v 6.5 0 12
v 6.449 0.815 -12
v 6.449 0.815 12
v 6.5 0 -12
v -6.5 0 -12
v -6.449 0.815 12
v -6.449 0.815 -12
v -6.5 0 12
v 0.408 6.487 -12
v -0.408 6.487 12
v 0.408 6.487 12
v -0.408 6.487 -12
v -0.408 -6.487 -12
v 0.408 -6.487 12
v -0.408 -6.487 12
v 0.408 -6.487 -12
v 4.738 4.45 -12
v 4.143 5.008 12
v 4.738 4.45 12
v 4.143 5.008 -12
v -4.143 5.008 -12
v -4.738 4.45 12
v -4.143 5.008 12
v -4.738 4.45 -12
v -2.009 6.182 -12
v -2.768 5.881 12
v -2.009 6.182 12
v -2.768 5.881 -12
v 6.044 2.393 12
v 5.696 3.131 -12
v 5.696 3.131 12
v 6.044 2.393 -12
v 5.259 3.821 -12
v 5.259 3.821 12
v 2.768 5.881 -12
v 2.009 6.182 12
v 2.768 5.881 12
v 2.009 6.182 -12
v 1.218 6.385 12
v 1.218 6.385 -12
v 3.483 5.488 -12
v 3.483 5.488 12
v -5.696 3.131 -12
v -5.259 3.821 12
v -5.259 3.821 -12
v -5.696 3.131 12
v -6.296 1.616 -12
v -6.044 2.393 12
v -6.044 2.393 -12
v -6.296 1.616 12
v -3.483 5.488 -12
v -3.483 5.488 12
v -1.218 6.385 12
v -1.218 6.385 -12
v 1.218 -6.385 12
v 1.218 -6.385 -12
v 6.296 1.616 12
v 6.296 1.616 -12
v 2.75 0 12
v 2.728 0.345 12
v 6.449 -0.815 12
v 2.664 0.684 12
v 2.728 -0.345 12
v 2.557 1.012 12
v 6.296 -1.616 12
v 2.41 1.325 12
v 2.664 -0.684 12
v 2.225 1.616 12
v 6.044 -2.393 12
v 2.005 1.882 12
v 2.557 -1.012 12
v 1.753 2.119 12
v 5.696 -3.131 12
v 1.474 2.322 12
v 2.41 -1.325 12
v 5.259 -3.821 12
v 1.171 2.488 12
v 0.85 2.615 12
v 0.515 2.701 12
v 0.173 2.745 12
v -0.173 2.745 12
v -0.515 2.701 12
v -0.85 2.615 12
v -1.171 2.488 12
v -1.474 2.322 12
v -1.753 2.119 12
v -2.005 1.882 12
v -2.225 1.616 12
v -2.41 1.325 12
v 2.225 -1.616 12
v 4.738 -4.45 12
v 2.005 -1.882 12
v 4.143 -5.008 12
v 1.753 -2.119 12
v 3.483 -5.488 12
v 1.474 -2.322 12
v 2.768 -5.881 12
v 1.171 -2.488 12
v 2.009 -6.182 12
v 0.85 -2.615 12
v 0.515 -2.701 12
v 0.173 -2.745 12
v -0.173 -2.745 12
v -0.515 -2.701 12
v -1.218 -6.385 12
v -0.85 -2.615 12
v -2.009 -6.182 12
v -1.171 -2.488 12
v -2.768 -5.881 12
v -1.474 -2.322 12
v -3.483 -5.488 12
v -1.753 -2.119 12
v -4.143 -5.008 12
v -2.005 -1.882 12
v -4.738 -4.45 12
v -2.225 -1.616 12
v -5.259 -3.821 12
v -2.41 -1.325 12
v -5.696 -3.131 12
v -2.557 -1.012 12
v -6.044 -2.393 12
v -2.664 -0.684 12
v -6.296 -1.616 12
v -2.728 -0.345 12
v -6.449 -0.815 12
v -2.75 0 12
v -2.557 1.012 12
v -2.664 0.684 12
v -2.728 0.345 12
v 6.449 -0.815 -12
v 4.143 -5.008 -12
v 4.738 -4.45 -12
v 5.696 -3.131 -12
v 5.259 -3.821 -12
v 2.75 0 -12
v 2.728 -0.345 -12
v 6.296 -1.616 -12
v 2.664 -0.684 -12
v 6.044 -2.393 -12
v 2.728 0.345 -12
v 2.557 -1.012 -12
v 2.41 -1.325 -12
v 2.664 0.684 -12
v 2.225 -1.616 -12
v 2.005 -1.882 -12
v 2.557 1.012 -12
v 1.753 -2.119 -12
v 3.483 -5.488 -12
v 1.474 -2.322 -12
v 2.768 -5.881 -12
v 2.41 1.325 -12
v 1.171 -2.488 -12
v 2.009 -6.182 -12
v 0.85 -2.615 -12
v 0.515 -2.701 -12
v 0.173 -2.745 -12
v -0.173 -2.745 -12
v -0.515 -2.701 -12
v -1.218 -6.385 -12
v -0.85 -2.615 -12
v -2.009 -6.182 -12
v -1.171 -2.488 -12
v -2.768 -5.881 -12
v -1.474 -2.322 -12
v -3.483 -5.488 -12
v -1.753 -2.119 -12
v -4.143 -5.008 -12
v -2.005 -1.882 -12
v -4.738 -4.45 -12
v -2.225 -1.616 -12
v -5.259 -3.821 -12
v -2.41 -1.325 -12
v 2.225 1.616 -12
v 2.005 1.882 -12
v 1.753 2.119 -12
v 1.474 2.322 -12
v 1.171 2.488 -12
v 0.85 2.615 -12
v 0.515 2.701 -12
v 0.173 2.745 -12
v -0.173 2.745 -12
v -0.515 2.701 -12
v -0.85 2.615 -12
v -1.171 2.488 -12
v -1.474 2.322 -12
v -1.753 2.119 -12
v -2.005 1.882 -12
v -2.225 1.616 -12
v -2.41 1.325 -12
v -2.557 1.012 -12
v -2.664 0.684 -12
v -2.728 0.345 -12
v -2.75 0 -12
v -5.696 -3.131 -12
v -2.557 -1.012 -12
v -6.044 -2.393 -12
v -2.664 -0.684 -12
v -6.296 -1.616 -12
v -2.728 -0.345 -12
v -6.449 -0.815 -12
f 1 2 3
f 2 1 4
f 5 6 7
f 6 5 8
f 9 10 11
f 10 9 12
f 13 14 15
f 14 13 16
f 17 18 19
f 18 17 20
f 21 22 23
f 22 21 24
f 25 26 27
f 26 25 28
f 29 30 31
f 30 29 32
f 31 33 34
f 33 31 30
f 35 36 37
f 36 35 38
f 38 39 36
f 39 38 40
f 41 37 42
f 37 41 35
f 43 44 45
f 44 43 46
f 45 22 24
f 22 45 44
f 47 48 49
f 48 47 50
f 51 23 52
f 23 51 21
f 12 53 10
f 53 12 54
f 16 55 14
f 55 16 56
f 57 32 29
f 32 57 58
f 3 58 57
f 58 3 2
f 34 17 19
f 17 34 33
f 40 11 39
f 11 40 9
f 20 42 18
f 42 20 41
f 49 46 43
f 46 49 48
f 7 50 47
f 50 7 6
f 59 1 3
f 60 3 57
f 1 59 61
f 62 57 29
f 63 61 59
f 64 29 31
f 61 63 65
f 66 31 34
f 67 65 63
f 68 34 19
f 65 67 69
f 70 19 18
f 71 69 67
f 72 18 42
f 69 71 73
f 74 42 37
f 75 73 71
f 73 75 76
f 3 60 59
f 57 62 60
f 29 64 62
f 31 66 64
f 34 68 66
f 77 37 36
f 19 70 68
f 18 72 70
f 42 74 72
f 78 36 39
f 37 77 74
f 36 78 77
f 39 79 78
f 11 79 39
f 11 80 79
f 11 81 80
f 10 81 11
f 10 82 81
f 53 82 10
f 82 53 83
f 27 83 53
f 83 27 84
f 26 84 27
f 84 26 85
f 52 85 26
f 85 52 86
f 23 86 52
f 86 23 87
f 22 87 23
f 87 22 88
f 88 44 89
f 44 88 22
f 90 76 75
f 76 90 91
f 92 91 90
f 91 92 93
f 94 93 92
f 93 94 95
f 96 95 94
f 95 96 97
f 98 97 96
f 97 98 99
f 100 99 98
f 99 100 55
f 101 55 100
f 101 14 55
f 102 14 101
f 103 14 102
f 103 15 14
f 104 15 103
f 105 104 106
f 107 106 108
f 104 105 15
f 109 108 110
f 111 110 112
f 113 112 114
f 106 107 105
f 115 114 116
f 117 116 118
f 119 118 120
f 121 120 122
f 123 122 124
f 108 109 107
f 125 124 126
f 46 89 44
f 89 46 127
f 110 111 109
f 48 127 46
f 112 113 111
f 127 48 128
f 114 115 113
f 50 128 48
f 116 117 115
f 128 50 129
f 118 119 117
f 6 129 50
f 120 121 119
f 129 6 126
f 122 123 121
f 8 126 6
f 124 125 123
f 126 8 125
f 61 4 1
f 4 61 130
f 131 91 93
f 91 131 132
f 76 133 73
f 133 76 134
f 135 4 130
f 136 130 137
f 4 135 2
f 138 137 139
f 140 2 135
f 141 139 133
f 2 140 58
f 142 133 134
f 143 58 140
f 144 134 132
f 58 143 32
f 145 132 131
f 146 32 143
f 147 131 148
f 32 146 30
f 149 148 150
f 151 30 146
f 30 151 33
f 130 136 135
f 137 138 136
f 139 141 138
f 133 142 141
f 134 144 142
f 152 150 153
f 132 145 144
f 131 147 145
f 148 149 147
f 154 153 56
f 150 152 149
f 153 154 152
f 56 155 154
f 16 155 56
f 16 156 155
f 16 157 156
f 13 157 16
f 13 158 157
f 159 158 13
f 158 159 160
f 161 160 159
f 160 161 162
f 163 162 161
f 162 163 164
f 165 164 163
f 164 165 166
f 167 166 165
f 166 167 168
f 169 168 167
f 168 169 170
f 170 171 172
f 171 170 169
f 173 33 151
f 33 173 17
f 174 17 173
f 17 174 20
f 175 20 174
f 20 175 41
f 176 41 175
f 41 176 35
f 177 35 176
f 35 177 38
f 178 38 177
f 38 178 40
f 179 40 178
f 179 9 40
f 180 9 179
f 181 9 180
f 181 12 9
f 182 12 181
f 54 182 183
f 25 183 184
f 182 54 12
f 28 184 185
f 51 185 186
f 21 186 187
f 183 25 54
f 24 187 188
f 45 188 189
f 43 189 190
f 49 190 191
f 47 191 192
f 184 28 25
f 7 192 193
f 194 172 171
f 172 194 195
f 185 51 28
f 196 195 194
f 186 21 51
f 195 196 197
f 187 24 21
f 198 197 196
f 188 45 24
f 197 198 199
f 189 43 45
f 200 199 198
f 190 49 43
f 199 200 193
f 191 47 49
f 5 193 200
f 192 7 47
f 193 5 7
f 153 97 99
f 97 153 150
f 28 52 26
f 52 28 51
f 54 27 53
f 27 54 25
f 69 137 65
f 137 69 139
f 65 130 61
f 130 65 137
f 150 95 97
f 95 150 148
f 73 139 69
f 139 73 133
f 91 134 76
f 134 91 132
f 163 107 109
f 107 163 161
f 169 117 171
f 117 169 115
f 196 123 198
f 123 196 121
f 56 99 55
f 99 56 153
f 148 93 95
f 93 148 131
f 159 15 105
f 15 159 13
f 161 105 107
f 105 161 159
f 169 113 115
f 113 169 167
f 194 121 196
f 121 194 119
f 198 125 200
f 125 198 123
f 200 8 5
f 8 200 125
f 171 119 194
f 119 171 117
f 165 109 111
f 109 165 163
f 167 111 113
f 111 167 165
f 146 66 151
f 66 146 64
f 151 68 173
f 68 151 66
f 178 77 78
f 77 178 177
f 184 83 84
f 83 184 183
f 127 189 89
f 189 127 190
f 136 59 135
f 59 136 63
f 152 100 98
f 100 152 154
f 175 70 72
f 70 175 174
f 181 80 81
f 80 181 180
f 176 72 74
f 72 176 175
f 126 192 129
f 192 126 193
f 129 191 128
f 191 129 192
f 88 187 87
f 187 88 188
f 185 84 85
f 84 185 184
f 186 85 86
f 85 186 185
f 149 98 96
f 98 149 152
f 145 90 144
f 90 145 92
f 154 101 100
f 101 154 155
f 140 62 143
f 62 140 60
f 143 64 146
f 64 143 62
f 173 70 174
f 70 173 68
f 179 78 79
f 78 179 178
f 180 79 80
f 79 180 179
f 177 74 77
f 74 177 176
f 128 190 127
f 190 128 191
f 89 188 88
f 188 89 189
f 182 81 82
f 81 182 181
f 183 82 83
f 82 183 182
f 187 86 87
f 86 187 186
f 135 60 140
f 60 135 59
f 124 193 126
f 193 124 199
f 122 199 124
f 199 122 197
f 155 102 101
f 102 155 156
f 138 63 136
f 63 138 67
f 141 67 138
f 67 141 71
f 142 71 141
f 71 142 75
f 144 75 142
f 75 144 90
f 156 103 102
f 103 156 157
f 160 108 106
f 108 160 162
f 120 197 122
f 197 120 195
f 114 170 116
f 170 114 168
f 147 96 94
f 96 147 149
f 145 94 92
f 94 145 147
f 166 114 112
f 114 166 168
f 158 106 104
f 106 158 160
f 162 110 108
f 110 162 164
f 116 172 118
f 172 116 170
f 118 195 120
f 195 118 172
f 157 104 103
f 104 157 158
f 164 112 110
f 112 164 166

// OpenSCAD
$fn = 50;


difference() {
	union() {
		translate(v = [0, 0, -12.0000000000]) {
			cylinder(h = 24, r = 6.5000000000);
		}
	}
	union() {
		translate(v = [0, 0, -100.0000000000]) {
			cylinder(h = 200, r = 2.7500000000);
		}
	}
}
